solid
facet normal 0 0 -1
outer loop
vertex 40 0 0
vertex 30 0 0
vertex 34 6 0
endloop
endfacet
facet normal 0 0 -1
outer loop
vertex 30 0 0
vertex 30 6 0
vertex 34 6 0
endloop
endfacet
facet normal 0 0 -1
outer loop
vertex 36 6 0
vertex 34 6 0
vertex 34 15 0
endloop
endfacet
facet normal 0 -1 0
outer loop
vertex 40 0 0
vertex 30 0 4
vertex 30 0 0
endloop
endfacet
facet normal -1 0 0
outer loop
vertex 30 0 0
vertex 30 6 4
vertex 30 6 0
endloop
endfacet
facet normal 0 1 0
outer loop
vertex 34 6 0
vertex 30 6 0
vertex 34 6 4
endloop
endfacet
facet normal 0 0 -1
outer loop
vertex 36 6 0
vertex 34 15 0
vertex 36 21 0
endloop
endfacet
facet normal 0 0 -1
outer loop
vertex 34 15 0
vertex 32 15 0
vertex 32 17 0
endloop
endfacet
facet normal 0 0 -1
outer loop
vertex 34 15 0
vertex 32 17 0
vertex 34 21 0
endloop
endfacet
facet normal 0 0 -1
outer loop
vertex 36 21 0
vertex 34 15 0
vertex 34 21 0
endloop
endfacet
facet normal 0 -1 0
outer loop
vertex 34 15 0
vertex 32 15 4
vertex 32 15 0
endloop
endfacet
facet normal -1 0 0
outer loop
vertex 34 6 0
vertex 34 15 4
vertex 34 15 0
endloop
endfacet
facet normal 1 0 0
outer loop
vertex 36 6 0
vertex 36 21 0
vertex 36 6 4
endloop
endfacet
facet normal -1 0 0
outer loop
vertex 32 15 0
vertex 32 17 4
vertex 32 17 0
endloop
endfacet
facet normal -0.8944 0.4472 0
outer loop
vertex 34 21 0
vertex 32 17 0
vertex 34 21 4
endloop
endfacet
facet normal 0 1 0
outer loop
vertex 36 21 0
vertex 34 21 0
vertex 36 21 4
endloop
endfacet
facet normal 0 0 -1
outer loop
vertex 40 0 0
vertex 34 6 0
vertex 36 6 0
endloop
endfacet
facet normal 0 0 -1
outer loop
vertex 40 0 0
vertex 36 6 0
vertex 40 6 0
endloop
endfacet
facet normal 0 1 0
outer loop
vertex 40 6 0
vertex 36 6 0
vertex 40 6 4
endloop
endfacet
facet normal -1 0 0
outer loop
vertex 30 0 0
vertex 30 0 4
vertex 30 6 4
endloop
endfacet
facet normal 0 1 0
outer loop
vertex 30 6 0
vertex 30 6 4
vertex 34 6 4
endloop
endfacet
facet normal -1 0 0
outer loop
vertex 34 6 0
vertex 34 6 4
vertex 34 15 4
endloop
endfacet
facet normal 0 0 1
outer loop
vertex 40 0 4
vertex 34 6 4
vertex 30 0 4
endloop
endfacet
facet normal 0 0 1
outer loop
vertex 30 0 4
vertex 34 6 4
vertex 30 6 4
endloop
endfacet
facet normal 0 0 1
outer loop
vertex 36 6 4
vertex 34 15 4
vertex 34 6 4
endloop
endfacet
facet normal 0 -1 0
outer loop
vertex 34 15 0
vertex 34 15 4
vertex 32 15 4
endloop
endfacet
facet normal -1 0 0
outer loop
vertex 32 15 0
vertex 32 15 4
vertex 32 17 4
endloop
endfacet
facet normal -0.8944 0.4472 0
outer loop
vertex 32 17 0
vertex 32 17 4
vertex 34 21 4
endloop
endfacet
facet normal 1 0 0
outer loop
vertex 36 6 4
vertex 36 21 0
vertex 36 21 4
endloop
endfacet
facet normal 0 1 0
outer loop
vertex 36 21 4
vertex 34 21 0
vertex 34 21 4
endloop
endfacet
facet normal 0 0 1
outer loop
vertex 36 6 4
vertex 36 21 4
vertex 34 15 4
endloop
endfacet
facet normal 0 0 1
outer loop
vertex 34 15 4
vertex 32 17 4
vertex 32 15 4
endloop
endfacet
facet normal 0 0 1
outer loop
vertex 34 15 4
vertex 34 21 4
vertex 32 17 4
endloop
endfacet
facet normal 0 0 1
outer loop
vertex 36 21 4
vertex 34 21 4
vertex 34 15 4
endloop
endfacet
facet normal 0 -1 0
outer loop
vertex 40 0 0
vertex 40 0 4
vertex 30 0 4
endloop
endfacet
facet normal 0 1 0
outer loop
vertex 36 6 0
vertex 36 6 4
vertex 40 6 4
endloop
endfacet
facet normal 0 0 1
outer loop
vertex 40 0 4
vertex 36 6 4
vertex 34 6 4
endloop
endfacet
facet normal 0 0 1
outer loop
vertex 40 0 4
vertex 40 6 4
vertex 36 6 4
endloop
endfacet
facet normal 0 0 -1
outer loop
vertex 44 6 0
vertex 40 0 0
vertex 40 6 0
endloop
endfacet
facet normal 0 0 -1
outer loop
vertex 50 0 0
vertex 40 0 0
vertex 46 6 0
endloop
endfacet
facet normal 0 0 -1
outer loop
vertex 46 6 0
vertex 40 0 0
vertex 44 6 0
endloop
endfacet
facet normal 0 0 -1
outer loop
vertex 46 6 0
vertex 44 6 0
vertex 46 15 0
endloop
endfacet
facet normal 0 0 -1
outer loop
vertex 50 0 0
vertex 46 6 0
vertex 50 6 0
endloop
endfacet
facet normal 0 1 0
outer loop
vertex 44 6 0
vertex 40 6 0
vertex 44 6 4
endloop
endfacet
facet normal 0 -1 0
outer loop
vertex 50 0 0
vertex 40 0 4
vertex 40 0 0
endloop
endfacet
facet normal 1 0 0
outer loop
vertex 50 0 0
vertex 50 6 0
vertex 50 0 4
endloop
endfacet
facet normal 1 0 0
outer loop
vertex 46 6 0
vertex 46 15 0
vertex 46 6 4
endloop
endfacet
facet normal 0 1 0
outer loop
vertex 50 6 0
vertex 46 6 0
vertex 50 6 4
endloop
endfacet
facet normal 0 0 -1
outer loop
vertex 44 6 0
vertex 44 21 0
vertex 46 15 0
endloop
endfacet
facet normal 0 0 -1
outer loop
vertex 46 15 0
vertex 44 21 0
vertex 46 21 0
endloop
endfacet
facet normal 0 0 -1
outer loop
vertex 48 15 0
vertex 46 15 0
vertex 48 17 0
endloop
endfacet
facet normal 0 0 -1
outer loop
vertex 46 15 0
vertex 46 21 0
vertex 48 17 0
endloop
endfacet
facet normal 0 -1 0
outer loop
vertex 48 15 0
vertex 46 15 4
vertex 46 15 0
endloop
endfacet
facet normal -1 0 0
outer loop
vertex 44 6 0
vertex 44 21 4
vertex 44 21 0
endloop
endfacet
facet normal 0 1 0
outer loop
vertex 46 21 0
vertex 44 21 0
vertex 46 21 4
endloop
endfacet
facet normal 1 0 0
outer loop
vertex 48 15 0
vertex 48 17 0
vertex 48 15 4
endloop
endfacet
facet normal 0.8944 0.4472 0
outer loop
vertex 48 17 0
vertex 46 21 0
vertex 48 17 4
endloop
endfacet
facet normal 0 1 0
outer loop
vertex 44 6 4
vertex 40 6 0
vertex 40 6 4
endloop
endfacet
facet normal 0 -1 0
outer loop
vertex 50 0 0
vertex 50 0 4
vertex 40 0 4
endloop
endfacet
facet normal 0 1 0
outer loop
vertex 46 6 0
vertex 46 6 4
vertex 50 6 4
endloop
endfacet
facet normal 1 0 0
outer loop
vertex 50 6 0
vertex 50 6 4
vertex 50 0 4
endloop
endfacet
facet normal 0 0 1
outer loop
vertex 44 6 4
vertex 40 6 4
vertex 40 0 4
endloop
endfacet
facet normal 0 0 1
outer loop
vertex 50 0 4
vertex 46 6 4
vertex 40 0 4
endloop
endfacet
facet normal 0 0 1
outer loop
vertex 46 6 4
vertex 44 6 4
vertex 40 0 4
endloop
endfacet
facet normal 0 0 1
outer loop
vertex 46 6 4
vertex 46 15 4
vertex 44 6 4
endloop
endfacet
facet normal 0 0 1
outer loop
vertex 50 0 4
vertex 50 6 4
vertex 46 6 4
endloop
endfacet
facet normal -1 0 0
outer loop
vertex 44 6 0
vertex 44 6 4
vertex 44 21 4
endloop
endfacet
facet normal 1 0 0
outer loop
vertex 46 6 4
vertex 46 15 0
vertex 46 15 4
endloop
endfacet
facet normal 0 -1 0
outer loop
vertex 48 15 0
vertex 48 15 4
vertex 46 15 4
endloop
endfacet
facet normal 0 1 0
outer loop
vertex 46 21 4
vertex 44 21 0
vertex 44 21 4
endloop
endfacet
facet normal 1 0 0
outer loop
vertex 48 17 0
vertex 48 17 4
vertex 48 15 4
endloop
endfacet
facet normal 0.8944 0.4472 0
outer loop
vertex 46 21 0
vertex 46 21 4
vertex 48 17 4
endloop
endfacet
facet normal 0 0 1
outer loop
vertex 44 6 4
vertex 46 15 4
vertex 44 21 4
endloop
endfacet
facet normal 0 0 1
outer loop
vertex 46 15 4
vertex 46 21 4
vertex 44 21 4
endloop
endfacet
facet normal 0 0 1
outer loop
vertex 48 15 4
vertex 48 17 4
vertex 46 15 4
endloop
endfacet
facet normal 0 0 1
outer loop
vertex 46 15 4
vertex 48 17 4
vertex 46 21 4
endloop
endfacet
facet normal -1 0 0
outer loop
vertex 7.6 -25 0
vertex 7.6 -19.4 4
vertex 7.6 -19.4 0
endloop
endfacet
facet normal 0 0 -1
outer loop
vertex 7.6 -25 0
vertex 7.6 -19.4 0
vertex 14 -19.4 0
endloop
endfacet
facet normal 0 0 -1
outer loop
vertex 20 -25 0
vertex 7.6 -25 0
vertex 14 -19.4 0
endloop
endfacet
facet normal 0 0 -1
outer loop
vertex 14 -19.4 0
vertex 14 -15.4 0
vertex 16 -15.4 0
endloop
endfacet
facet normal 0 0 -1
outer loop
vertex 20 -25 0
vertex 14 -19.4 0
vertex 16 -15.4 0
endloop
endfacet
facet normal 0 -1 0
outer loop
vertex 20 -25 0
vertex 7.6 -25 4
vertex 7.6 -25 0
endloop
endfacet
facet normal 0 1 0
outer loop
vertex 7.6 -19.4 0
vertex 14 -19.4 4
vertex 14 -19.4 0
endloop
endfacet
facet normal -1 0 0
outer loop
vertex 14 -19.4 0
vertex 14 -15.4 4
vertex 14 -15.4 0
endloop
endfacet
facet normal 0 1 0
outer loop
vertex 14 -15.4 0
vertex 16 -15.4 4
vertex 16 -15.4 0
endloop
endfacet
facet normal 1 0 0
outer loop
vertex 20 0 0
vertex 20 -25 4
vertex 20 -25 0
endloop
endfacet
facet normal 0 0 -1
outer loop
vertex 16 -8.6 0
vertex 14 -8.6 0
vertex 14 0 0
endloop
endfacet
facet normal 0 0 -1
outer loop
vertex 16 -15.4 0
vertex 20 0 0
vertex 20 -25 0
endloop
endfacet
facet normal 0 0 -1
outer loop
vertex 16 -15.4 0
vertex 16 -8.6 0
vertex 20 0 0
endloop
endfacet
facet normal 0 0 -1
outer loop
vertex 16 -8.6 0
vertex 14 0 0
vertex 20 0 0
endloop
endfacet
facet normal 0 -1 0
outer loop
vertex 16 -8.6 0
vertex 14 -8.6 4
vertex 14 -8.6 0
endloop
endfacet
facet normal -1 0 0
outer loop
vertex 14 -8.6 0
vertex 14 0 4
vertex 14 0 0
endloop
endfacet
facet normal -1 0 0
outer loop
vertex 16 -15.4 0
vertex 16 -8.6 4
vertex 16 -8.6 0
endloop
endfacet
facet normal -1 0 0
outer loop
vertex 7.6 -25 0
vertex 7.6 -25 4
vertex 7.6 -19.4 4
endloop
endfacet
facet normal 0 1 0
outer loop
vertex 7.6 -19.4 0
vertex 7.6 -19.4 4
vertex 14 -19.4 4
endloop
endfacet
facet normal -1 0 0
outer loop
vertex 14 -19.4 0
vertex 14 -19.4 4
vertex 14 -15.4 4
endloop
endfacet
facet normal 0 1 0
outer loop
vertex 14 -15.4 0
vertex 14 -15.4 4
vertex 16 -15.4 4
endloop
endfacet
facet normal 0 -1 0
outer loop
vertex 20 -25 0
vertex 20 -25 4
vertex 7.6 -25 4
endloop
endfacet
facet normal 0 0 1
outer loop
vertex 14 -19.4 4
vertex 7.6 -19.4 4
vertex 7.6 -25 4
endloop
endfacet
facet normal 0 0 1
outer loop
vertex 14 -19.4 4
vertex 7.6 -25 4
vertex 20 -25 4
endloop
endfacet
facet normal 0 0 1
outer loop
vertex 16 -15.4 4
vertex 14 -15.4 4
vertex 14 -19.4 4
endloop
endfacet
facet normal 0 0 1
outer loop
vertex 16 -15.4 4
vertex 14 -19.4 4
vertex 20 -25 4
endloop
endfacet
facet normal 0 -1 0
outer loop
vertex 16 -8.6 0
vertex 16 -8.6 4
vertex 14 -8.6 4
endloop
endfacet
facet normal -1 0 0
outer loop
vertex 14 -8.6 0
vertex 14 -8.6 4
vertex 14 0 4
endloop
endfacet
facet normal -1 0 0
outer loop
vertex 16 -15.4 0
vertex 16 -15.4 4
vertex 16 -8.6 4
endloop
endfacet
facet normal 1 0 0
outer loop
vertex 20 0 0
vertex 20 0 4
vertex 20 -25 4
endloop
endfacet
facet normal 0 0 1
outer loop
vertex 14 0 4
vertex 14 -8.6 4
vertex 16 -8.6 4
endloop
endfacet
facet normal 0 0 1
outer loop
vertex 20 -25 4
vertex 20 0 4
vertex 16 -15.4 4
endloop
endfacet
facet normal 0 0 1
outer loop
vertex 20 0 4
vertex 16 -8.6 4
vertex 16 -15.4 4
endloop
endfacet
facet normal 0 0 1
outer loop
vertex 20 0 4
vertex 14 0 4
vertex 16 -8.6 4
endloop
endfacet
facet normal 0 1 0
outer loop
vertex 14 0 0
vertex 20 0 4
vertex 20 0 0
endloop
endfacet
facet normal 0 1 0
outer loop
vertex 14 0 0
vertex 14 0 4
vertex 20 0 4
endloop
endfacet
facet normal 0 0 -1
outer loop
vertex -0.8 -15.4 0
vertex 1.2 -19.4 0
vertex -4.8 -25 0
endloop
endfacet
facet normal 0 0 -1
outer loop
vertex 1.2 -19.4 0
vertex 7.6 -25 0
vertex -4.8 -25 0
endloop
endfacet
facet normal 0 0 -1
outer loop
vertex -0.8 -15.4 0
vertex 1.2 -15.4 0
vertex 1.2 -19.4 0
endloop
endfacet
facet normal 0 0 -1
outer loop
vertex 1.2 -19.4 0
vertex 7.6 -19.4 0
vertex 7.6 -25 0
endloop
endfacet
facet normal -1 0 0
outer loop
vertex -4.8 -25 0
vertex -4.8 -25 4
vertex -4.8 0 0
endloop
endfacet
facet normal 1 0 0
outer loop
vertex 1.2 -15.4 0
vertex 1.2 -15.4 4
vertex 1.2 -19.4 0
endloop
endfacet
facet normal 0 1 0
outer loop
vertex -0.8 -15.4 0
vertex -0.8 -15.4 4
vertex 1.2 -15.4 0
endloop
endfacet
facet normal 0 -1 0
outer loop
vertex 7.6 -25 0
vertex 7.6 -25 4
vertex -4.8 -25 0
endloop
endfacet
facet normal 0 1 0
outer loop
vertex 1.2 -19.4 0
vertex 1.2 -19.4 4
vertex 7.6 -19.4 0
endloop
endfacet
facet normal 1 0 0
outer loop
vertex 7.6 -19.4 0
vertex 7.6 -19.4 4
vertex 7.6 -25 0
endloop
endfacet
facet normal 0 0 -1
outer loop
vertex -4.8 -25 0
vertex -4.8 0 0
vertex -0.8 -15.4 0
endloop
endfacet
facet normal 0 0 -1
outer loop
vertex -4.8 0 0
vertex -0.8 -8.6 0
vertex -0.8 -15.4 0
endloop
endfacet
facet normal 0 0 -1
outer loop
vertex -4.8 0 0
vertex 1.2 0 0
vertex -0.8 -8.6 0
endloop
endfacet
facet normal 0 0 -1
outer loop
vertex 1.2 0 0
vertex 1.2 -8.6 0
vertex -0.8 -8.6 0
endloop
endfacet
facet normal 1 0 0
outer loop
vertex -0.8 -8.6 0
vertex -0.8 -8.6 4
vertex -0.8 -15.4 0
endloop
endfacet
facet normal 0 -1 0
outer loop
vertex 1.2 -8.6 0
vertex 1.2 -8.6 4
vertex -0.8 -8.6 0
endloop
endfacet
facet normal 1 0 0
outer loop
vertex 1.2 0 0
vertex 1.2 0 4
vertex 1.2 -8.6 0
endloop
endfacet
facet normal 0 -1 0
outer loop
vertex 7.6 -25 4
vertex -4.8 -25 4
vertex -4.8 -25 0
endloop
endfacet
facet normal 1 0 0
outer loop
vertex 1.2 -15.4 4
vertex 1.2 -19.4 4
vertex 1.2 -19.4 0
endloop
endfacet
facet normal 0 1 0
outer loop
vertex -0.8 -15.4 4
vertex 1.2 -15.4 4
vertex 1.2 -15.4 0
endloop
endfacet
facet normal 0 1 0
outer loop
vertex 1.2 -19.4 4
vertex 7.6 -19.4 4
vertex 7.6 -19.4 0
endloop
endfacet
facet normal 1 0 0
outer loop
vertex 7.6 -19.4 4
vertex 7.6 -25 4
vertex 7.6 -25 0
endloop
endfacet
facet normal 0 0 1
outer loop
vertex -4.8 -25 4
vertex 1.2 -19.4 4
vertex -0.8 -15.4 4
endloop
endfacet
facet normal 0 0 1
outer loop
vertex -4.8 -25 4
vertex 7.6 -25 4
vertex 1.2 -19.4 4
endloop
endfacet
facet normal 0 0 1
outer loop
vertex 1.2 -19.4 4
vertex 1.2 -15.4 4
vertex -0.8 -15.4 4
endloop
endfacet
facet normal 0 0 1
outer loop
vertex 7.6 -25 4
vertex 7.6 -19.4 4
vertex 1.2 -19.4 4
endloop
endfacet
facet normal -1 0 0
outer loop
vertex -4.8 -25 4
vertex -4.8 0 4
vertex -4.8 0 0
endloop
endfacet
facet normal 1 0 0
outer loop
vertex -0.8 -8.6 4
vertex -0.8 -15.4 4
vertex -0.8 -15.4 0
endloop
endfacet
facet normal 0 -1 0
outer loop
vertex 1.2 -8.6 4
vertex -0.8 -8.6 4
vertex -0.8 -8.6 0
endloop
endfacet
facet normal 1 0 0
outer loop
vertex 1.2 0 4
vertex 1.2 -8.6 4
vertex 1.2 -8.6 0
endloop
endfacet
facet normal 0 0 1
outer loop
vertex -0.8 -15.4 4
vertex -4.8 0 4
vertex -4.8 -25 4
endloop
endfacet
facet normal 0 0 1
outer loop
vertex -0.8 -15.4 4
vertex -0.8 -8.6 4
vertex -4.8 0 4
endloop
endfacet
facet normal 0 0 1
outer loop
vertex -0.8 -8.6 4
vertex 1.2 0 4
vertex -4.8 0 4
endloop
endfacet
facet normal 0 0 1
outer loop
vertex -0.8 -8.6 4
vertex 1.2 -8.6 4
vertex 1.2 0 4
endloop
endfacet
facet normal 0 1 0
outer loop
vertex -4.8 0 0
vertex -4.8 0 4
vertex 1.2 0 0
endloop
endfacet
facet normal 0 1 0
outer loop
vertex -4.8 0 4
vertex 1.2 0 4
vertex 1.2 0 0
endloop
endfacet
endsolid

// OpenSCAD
//--------
$fa = 1;
$fs = 0.4;

// NOTE: a suffix of `x` indicates that the variable has a subscript in
// `geometry.png`
L0_temp = 15;
L2_temp = 8;
b = 4;
bx = [2, 4, 6, L2_temp - 4];
hx = [2, 4, 2, 4, 4];
h = hx[2];
Lx = [L0_temp, L0_temp - (bx[0] + bx[1]), L2_temp];
tol = 0.8; //0.4;

module snap_fit_half(){
    linear_extrude(b){
        union(){
            square([bx[2], hx[1] + hx[2] + hx[3]]);
            translate([bx[2], hx[1], 0])
                square([Lx[0], hx[2]]);
            translate([Lx[1] + bx[0] + bx[2], hx[1] + hx[2], 0])
                polygon([
                    [0, 0],
                    [bx[1], 0],
                    [0, hx[0]],
                ]);
            translate([Lx[1] + bx[2], hx[1] + hx[2], 0])
                square([bx[0], hx[0]]);
        }
    }
}

//translate([0, -(hx[1] + hx[2] + hx[3]), 0])

module snap_fit(){
    union(){
        snap_fit_half();
        translate([0, 0, b])
            rotate([180])
                snap_fit_half();
    }
}
translate([40, 0, 0]){
    rotate([0, 0, -270])
    snap_fit();
}


//spread_sz_x = 2.0 * (hx[1] + hx[2]) + (tol /* / 2.0*/);
//module sf_hole_part(){
//    linear_extrude(b){
//        difference(){
//            square([
//                2.0 * (hx[0] + hx[4]) + spread_sz_x,
//                Lx[1] + bx[0] + bx[1] + Lx[2], 
//            ]);
//            union(){
//                translate([hx[4], Lx[1] - (tol / 2.0), 0])
//                    square([
//                        2.0 * hx[0] + spread_sz_x,
//                        bx[0] + bx[1] + tol
//                    ]);
//                translate([hx[0] + hx[4], 0, 0])
//                    square([
//                        spread_sz_x,
//                        Lx[1] + bx[0] + bx[1] + bx[3],
//                    ]);
//            }
//        }
//    }
//}

spread_sz_x_half = hx[1] + hx[2] + tol / 2.0;
module sf_hole_part_half(){
    linear_extrude(b){
        difference(){
            square([
                hx[0] + hx[4] + spread_sz_x_half,
                Lx[1] + bx[0] + bx[2] + Lx[2],
            ]);
            union(){
                translate([hx[0] + hx[4], 0, 0])
                    square([
                        spread_sz_x_half,
                        Lx[1] + bx[0] + bx[1] + bx[3] + tol / 2.0
                    ]);
                translate([hx[4], Lx[1] - tol / 2.0, 0])
                    square([
                        hx[0],
                        bx[0] + bx[1] + tol,
                    ]);
            }
        }
    }
}
module sf_hole_part(){
    union(){
        sf_hole_part_half();
        translate([2 * (hx[0] + hx[4] + spread_sz_x_half), 0, 0])
            mirror([180, 0, 0])
                sf_hole_part_half();
    }
}

translate([20, 0, 0])
    rotate([0, 0, -180])
        sf_hole_part();
